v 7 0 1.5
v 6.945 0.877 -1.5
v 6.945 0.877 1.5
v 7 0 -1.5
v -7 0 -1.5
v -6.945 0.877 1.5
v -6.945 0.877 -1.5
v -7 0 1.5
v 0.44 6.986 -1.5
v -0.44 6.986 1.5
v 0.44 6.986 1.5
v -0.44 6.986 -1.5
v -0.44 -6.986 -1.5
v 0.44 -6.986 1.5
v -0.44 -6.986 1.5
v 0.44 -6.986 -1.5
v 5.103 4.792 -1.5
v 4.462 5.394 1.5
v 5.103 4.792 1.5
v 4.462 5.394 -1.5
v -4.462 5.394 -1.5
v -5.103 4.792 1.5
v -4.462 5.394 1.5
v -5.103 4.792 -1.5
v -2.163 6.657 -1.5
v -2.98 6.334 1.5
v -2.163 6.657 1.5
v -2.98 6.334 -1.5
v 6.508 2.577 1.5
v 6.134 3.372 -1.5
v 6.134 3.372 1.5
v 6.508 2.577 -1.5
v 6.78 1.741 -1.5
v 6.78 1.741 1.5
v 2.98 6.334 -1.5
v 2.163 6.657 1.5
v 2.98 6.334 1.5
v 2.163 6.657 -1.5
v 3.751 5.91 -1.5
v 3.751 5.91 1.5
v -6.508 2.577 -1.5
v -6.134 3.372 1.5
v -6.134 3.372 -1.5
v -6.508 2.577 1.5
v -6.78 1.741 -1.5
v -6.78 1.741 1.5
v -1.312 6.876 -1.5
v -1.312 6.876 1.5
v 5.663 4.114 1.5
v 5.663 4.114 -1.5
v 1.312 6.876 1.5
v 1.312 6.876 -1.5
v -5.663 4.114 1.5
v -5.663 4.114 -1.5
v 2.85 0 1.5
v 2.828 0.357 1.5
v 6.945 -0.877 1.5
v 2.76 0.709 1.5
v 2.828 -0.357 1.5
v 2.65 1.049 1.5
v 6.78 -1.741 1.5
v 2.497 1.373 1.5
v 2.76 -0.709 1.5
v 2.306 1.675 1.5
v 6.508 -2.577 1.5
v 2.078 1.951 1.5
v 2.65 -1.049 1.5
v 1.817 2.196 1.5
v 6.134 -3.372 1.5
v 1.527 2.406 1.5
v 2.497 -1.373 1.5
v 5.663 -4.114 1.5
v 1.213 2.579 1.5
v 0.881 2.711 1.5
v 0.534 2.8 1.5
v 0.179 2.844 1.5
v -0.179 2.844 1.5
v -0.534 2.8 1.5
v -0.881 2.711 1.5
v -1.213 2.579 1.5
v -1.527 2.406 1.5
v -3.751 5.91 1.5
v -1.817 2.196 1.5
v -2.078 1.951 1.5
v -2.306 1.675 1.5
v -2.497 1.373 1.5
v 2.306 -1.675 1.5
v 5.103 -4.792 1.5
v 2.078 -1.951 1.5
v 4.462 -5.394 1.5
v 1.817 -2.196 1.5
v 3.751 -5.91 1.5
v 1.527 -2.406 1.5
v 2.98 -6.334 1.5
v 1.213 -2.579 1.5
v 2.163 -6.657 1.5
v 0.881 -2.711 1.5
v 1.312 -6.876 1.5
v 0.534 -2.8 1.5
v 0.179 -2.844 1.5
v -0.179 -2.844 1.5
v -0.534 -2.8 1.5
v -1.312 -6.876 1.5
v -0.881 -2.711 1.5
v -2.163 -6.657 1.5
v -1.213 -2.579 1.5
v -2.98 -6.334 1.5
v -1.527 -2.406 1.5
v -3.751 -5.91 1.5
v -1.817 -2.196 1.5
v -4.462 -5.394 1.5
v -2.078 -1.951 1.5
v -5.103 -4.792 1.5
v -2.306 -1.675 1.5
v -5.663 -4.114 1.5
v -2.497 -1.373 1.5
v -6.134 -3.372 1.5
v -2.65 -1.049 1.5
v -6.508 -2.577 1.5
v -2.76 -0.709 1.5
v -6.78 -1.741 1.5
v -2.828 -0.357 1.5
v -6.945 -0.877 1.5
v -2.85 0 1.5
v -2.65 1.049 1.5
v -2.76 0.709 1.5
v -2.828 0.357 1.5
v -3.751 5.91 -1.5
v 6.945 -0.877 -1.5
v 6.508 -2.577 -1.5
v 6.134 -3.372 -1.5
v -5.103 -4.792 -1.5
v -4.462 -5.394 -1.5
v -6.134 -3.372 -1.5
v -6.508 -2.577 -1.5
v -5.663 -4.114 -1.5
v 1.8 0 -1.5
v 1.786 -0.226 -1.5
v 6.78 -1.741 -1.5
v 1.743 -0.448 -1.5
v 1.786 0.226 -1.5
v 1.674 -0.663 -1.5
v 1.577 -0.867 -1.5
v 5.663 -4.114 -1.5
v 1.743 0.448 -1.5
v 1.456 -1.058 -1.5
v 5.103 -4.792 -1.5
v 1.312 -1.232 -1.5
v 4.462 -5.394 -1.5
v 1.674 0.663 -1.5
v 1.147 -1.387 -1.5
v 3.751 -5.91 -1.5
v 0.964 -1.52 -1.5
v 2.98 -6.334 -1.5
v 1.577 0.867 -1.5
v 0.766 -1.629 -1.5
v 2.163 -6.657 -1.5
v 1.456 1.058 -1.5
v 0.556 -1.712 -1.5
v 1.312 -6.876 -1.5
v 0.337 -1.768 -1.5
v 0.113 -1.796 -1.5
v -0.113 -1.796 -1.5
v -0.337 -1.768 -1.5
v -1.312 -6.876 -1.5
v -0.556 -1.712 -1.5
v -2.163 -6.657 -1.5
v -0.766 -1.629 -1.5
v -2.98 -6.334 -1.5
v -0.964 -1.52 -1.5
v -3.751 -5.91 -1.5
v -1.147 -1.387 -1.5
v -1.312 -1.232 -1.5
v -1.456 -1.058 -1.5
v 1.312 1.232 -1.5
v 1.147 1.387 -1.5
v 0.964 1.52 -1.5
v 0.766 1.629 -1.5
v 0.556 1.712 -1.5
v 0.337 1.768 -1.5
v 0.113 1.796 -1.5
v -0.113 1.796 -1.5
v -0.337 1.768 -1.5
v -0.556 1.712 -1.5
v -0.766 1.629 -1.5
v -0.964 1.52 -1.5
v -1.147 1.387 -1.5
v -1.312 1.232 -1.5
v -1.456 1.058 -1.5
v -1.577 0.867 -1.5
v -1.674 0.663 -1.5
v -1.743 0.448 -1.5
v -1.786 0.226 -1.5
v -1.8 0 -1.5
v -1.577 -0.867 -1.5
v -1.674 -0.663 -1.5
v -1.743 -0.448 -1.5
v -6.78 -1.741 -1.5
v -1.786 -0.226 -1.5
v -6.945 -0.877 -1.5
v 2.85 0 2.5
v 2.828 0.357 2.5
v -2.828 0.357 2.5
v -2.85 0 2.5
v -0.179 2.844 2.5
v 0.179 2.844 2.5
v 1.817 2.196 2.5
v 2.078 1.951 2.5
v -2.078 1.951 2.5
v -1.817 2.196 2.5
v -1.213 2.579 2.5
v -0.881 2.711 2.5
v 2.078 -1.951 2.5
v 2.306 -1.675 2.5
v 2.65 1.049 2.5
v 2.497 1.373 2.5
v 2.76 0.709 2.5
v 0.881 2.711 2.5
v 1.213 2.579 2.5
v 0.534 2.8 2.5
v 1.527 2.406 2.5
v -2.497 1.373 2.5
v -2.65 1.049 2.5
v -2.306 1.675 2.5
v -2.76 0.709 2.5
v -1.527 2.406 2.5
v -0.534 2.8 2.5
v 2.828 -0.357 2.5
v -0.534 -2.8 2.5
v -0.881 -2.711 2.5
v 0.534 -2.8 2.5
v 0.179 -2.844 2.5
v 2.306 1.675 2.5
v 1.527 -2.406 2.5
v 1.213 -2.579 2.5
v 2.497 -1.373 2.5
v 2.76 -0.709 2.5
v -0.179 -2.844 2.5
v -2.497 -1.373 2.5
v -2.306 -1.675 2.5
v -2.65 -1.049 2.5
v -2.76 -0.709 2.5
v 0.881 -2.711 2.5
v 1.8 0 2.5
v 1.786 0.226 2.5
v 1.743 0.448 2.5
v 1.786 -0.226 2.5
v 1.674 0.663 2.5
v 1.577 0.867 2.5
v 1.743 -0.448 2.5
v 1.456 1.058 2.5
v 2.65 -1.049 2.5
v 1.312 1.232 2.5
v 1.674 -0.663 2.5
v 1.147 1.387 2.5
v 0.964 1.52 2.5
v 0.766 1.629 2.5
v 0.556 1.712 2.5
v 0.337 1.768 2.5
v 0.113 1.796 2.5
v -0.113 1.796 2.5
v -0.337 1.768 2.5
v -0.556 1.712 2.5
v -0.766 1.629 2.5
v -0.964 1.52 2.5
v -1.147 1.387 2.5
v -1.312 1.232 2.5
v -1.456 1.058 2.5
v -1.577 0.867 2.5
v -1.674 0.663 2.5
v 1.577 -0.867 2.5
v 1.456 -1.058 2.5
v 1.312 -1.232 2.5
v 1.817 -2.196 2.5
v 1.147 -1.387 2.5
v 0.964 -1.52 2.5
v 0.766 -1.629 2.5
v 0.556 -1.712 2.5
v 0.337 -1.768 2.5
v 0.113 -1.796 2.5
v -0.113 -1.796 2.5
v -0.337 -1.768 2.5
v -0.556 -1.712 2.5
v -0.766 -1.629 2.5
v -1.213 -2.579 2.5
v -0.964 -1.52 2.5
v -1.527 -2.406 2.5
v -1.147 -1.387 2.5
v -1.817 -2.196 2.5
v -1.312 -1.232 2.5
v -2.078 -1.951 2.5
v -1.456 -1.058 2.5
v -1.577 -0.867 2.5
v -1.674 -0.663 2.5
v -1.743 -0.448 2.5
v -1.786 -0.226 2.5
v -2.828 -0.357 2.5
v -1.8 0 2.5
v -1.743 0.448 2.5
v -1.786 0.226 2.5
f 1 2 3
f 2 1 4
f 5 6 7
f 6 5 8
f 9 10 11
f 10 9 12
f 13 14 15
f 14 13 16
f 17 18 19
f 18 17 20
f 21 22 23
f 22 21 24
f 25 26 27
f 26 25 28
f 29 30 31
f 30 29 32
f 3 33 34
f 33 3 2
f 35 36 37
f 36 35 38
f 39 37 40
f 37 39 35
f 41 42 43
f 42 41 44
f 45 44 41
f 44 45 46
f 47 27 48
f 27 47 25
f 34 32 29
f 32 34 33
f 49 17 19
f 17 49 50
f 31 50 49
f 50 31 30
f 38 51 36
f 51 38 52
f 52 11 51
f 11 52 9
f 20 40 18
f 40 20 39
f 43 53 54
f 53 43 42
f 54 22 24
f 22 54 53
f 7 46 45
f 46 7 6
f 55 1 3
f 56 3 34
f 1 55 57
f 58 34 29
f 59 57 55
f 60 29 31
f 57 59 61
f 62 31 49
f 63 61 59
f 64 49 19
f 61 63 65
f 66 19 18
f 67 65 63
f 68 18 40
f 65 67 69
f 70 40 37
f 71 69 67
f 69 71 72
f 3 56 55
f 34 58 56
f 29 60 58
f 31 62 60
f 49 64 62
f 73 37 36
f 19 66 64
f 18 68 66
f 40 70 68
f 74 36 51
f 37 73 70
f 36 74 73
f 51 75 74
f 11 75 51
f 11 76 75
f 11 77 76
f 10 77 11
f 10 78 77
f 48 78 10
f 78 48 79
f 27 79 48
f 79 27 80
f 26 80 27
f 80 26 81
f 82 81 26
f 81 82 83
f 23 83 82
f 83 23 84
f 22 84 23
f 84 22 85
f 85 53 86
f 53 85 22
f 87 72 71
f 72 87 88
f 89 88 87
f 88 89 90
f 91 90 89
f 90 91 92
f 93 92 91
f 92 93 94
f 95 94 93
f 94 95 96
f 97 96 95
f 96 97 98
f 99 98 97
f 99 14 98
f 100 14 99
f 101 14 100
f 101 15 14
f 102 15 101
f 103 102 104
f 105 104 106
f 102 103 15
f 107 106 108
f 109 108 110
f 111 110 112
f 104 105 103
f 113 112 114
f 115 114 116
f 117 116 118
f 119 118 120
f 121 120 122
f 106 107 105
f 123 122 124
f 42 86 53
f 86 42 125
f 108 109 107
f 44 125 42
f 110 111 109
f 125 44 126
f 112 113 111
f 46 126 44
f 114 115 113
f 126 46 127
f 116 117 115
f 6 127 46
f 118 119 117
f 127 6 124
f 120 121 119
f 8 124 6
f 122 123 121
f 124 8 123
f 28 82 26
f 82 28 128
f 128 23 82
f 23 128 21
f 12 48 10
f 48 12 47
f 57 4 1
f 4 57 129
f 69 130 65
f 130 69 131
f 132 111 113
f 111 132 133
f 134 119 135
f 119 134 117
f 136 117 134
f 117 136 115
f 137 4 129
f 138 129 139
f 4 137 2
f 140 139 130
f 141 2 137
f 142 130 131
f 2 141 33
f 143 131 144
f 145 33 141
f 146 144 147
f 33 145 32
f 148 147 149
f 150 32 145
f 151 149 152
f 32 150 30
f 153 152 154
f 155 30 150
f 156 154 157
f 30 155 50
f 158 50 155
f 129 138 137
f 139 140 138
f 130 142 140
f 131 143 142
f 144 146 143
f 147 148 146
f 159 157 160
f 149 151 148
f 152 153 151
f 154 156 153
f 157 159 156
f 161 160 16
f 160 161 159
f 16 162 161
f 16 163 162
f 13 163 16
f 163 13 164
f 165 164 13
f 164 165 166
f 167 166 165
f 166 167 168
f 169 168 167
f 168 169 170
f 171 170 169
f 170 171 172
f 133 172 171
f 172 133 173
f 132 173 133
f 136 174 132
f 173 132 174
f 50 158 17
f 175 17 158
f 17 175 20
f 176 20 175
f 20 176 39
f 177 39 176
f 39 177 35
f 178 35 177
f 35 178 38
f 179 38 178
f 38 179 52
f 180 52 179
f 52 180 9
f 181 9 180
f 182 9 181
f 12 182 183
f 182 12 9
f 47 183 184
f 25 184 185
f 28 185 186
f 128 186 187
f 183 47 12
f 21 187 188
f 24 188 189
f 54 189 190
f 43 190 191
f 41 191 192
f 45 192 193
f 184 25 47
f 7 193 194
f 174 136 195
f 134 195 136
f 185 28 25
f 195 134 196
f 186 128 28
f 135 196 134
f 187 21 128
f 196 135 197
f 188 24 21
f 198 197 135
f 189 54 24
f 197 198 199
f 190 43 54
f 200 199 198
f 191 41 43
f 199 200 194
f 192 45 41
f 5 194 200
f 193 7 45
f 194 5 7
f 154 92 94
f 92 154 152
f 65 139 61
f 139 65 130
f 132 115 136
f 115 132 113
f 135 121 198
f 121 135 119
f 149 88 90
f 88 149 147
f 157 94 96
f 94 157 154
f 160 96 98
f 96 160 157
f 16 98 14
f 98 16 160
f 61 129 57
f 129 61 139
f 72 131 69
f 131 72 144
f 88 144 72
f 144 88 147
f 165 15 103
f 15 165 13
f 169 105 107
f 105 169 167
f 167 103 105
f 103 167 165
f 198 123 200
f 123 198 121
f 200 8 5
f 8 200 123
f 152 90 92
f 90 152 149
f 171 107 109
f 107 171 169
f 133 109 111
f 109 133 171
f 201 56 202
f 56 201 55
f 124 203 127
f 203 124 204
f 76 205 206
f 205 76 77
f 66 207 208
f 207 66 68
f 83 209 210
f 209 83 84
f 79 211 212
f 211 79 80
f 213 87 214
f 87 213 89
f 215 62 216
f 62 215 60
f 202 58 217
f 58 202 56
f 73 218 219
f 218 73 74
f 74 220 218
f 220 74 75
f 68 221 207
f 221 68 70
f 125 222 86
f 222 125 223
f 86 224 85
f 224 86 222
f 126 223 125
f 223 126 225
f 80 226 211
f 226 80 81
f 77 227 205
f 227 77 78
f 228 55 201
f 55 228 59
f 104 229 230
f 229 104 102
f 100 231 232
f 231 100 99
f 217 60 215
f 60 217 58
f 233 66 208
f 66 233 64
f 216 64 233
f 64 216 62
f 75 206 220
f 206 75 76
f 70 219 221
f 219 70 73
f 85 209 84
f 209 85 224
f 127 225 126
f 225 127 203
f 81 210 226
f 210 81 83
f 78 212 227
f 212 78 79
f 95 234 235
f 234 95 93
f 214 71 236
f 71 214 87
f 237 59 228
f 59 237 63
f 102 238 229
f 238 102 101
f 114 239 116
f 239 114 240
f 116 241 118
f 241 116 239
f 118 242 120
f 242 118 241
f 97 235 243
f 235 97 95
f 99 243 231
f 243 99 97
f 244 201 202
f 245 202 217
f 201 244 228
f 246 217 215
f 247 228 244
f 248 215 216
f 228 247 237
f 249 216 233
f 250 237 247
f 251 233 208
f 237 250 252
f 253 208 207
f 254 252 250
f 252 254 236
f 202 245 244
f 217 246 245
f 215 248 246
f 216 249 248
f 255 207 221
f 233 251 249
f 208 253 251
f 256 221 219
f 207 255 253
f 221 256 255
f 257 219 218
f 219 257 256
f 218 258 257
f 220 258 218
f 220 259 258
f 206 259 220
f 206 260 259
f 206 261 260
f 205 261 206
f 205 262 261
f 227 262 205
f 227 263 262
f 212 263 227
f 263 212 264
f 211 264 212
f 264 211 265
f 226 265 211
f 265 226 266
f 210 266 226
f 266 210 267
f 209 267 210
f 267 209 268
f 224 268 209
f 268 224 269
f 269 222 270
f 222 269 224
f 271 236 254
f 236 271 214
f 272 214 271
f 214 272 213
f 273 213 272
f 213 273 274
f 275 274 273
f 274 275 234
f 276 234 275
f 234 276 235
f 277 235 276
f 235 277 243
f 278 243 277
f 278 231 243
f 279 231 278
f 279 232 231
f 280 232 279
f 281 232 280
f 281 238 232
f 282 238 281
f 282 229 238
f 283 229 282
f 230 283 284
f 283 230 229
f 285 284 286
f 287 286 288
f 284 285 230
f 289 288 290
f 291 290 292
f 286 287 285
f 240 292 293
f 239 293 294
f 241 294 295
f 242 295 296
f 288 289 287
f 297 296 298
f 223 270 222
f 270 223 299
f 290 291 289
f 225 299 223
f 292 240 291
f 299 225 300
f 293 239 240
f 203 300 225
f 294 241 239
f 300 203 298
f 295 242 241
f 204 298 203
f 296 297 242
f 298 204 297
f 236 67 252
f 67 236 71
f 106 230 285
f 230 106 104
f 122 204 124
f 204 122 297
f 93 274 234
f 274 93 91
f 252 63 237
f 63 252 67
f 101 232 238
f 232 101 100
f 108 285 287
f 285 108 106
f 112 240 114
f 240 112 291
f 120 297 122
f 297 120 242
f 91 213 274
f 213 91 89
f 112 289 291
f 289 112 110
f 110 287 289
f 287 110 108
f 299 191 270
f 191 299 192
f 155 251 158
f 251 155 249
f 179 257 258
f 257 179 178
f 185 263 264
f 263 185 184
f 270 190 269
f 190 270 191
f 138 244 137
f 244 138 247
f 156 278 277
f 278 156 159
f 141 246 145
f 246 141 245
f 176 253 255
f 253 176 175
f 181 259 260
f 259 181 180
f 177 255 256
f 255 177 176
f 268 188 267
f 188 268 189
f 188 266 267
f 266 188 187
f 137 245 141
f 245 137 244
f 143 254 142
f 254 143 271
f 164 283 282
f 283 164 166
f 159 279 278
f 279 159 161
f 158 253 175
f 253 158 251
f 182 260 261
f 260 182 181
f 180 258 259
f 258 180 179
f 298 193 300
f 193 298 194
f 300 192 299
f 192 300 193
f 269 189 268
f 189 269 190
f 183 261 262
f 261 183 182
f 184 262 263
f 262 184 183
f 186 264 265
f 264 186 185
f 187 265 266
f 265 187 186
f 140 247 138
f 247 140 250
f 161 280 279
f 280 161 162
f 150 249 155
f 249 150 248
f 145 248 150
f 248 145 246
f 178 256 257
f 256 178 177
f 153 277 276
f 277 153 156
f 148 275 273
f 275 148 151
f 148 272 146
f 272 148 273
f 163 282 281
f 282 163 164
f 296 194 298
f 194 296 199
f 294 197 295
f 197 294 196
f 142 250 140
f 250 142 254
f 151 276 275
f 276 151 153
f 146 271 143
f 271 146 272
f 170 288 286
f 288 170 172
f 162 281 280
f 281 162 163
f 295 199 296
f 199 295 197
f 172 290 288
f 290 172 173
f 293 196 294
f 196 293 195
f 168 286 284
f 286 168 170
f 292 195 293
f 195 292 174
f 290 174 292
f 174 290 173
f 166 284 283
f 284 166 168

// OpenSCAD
$fn = 50;


difference() {
	union() {
		translate(v = [0, 0, -1.5000000000]) {
			rotate(a = [0, 0, 0]) {
				cylinder(h = 3, r = 7.0000000000);
			}
		}
		translate(v = [0, 0, -1.5000000000]) {
			rotate(a = [0, 0, 0]) {
				cylinder(h = 4, r = 2.8500000000);
			}
		}
	}
	union() {
		translate(v = [0, 0, -125.0000000000]) {
			rotate(a = [0, 0, 0]) {
				cylinder(h = 250, r = 1.8000000000);
			}
		}
	}
}
